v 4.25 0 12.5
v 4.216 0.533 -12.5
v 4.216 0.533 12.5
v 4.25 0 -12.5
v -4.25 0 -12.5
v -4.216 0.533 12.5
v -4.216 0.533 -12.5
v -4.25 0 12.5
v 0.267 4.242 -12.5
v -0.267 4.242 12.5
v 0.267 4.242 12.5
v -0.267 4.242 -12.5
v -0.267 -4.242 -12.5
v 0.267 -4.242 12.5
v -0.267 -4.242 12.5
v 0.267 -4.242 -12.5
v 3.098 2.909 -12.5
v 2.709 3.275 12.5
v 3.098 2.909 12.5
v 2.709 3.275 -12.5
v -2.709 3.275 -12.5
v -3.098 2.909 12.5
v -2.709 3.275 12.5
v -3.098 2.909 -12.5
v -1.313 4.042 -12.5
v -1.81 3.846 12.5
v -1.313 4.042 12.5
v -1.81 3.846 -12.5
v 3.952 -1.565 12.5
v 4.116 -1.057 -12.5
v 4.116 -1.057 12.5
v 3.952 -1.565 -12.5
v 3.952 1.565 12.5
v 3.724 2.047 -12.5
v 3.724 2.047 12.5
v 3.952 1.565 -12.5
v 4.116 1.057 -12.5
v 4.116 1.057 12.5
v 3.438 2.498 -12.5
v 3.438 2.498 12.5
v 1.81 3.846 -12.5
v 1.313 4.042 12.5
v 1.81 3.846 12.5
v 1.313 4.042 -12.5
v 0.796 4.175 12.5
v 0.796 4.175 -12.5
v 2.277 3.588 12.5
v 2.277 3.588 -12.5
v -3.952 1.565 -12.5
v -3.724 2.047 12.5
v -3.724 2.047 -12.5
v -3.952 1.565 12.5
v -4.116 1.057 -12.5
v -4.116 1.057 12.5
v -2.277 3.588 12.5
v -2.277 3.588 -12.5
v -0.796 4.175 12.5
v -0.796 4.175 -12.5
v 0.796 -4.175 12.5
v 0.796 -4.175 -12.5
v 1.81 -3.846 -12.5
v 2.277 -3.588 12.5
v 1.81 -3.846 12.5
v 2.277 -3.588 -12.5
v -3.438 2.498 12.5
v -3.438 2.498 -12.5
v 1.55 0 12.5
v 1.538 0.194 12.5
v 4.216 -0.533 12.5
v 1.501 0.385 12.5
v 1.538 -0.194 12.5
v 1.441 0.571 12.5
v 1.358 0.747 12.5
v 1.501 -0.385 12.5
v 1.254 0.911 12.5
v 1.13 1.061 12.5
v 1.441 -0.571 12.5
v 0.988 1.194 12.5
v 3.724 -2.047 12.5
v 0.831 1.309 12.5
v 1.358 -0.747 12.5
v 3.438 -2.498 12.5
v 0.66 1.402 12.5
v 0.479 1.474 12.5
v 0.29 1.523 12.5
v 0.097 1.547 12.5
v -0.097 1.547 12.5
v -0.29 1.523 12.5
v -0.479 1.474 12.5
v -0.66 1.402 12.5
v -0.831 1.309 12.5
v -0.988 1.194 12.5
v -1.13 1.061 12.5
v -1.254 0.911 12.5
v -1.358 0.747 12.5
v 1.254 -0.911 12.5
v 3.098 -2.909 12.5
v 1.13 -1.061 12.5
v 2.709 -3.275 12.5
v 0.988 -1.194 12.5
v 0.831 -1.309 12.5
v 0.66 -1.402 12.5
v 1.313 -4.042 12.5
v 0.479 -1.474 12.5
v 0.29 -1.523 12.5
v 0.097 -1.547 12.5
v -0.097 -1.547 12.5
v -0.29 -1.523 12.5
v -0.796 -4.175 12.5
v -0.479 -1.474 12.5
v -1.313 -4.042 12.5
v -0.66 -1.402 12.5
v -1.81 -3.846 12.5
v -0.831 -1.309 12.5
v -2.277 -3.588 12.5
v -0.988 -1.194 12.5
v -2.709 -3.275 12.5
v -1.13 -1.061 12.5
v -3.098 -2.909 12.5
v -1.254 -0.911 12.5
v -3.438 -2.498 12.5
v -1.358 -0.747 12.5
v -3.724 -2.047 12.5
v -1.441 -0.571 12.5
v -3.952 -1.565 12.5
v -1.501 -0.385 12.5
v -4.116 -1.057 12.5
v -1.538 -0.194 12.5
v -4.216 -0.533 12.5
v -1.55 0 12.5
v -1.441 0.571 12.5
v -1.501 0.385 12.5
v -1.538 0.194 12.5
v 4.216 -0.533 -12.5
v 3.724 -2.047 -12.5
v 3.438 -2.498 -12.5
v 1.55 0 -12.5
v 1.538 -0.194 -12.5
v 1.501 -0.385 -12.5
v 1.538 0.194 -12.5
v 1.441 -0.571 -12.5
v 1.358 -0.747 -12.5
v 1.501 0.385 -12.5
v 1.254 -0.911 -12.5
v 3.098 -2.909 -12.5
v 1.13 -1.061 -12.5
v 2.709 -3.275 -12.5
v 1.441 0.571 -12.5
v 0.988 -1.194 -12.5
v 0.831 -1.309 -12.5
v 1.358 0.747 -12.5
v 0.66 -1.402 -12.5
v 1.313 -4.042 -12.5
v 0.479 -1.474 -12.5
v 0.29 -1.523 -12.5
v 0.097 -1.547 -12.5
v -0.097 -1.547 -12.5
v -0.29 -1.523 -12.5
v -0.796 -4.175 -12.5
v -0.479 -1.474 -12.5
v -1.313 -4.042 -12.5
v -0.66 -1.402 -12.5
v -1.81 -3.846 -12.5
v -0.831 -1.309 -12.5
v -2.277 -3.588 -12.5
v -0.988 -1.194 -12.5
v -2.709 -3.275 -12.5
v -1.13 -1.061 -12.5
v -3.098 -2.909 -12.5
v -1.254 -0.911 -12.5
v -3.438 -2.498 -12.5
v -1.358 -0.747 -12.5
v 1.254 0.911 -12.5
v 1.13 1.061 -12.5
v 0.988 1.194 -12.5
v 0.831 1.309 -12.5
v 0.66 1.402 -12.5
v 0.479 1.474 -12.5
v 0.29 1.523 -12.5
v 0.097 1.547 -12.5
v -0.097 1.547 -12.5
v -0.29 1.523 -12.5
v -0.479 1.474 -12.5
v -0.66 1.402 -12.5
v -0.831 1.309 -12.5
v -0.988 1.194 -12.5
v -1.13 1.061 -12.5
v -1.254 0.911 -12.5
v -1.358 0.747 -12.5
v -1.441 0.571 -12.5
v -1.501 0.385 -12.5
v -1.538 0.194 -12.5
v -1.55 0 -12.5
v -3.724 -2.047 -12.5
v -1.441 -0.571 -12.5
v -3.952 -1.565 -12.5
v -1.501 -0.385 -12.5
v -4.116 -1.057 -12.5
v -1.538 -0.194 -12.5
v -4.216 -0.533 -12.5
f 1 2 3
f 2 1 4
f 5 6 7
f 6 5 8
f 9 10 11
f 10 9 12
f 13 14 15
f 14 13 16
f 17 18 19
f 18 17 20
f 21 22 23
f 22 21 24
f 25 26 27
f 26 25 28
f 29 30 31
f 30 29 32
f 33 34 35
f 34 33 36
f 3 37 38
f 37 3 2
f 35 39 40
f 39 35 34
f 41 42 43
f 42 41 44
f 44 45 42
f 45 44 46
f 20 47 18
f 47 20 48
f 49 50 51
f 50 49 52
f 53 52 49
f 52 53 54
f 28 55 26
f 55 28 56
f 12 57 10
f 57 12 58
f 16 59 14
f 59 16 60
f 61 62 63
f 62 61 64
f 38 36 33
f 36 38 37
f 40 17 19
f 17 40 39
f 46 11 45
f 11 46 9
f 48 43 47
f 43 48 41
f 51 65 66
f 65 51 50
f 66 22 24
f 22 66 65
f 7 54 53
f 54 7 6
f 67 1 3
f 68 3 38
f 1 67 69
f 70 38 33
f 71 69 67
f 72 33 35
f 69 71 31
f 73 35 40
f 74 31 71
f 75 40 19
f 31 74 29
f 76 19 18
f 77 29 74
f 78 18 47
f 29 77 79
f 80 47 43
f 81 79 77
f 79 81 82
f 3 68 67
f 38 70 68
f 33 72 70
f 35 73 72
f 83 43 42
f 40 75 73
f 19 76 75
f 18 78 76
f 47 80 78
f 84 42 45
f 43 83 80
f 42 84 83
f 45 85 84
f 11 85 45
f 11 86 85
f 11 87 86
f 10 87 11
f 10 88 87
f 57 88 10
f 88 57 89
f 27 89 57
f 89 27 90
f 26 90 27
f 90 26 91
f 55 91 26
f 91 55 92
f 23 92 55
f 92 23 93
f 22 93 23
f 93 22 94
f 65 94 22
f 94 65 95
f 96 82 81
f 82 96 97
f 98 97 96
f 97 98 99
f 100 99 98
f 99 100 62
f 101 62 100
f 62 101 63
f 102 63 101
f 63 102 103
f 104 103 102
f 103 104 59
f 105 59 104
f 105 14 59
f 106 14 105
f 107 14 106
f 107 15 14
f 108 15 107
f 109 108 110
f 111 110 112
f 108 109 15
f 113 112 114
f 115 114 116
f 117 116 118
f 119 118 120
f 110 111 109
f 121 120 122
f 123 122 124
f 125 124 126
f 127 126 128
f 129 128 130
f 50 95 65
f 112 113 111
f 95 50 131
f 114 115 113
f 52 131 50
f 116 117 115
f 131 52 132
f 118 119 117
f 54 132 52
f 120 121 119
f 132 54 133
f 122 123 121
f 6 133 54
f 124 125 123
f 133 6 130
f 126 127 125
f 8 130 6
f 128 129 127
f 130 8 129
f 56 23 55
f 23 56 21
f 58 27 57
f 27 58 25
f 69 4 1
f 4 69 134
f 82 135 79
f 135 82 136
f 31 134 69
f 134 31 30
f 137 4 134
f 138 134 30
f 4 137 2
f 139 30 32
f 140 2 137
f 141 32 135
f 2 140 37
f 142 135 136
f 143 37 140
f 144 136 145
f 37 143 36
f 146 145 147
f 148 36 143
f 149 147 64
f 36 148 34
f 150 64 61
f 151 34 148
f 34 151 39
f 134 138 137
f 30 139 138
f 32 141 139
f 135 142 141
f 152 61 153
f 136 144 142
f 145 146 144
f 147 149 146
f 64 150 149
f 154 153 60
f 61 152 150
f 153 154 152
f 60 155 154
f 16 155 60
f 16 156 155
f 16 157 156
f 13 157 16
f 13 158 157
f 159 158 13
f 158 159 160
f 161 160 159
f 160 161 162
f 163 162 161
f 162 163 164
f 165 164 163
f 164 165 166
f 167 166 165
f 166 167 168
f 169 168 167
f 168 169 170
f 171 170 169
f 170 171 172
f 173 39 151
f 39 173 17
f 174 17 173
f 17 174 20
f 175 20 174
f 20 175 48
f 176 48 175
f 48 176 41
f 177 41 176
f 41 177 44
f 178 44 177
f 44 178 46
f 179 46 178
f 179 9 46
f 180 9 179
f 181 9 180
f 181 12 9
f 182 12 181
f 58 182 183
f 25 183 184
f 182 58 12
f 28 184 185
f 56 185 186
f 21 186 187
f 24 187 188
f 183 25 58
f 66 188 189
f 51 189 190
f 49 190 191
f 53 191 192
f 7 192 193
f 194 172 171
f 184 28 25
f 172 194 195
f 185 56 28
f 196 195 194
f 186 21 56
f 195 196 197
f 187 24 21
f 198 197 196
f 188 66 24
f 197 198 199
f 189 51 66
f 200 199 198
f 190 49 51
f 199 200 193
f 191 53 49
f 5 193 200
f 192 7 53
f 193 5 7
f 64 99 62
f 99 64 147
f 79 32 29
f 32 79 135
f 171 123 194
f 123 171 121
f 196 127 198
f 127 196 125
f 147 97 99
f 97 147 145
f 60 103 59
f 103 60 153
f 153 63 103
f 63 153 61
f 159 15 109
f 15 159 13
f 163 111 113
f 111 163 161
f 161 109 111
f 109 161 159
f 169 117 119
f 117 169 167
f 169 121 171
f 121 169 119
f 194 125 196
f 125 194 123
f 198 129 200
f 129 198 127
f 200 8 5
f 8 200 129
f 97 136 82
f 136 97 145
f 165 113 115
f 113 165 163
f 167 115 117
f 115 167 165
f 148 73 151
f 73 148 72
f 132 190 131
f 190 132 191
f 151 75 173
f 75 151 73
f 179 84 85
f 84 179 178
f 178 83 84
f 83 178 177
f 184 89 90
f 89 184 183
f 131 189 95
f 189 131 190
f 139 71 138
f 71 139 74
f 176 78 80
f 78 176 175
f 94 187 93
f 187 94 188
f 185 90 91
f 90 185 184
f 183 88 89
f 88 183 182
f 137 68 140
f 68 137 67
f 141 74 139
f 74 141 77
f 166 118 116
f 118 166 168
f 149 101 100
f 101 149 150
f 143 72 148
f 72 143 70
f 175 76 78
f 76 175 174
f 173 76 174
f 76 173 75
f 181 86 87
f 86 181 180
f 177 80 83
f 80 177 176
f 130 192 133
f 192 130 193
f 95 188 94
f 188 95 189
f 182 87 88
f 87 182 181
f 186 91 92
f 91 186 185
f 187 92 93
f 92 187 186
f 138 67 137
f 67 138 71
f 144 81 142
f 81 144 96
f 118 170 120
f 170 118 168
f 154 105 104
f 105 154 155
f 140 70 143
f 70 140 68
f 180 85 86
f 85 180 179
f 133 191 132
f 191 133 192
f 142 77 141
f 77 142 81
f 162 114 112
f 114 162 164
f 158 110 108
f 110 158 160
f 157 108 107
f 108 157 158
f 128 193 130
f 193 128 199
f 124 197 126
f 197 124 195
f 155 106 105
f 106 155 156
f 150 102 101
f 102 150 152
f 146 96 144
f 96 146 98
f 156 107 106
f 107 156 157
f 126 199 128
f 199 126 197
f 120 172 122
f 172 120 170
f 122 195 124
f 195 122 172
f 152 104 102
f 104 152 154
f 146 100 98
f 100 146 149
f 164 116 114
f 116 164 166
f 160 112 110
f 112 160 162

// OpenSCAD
$fn = 50;


difference() {
	union() {
		translate(v = [0, 0, -12.5000000000]) {
			cylinder(h = 25, r = 4.2500000000);
		}
	}
	union() {
		translate(v = [0, 0, -100.0000000000]) {
			cylinder(h = 200, r = 1.5500000000);
		}
	}
}
